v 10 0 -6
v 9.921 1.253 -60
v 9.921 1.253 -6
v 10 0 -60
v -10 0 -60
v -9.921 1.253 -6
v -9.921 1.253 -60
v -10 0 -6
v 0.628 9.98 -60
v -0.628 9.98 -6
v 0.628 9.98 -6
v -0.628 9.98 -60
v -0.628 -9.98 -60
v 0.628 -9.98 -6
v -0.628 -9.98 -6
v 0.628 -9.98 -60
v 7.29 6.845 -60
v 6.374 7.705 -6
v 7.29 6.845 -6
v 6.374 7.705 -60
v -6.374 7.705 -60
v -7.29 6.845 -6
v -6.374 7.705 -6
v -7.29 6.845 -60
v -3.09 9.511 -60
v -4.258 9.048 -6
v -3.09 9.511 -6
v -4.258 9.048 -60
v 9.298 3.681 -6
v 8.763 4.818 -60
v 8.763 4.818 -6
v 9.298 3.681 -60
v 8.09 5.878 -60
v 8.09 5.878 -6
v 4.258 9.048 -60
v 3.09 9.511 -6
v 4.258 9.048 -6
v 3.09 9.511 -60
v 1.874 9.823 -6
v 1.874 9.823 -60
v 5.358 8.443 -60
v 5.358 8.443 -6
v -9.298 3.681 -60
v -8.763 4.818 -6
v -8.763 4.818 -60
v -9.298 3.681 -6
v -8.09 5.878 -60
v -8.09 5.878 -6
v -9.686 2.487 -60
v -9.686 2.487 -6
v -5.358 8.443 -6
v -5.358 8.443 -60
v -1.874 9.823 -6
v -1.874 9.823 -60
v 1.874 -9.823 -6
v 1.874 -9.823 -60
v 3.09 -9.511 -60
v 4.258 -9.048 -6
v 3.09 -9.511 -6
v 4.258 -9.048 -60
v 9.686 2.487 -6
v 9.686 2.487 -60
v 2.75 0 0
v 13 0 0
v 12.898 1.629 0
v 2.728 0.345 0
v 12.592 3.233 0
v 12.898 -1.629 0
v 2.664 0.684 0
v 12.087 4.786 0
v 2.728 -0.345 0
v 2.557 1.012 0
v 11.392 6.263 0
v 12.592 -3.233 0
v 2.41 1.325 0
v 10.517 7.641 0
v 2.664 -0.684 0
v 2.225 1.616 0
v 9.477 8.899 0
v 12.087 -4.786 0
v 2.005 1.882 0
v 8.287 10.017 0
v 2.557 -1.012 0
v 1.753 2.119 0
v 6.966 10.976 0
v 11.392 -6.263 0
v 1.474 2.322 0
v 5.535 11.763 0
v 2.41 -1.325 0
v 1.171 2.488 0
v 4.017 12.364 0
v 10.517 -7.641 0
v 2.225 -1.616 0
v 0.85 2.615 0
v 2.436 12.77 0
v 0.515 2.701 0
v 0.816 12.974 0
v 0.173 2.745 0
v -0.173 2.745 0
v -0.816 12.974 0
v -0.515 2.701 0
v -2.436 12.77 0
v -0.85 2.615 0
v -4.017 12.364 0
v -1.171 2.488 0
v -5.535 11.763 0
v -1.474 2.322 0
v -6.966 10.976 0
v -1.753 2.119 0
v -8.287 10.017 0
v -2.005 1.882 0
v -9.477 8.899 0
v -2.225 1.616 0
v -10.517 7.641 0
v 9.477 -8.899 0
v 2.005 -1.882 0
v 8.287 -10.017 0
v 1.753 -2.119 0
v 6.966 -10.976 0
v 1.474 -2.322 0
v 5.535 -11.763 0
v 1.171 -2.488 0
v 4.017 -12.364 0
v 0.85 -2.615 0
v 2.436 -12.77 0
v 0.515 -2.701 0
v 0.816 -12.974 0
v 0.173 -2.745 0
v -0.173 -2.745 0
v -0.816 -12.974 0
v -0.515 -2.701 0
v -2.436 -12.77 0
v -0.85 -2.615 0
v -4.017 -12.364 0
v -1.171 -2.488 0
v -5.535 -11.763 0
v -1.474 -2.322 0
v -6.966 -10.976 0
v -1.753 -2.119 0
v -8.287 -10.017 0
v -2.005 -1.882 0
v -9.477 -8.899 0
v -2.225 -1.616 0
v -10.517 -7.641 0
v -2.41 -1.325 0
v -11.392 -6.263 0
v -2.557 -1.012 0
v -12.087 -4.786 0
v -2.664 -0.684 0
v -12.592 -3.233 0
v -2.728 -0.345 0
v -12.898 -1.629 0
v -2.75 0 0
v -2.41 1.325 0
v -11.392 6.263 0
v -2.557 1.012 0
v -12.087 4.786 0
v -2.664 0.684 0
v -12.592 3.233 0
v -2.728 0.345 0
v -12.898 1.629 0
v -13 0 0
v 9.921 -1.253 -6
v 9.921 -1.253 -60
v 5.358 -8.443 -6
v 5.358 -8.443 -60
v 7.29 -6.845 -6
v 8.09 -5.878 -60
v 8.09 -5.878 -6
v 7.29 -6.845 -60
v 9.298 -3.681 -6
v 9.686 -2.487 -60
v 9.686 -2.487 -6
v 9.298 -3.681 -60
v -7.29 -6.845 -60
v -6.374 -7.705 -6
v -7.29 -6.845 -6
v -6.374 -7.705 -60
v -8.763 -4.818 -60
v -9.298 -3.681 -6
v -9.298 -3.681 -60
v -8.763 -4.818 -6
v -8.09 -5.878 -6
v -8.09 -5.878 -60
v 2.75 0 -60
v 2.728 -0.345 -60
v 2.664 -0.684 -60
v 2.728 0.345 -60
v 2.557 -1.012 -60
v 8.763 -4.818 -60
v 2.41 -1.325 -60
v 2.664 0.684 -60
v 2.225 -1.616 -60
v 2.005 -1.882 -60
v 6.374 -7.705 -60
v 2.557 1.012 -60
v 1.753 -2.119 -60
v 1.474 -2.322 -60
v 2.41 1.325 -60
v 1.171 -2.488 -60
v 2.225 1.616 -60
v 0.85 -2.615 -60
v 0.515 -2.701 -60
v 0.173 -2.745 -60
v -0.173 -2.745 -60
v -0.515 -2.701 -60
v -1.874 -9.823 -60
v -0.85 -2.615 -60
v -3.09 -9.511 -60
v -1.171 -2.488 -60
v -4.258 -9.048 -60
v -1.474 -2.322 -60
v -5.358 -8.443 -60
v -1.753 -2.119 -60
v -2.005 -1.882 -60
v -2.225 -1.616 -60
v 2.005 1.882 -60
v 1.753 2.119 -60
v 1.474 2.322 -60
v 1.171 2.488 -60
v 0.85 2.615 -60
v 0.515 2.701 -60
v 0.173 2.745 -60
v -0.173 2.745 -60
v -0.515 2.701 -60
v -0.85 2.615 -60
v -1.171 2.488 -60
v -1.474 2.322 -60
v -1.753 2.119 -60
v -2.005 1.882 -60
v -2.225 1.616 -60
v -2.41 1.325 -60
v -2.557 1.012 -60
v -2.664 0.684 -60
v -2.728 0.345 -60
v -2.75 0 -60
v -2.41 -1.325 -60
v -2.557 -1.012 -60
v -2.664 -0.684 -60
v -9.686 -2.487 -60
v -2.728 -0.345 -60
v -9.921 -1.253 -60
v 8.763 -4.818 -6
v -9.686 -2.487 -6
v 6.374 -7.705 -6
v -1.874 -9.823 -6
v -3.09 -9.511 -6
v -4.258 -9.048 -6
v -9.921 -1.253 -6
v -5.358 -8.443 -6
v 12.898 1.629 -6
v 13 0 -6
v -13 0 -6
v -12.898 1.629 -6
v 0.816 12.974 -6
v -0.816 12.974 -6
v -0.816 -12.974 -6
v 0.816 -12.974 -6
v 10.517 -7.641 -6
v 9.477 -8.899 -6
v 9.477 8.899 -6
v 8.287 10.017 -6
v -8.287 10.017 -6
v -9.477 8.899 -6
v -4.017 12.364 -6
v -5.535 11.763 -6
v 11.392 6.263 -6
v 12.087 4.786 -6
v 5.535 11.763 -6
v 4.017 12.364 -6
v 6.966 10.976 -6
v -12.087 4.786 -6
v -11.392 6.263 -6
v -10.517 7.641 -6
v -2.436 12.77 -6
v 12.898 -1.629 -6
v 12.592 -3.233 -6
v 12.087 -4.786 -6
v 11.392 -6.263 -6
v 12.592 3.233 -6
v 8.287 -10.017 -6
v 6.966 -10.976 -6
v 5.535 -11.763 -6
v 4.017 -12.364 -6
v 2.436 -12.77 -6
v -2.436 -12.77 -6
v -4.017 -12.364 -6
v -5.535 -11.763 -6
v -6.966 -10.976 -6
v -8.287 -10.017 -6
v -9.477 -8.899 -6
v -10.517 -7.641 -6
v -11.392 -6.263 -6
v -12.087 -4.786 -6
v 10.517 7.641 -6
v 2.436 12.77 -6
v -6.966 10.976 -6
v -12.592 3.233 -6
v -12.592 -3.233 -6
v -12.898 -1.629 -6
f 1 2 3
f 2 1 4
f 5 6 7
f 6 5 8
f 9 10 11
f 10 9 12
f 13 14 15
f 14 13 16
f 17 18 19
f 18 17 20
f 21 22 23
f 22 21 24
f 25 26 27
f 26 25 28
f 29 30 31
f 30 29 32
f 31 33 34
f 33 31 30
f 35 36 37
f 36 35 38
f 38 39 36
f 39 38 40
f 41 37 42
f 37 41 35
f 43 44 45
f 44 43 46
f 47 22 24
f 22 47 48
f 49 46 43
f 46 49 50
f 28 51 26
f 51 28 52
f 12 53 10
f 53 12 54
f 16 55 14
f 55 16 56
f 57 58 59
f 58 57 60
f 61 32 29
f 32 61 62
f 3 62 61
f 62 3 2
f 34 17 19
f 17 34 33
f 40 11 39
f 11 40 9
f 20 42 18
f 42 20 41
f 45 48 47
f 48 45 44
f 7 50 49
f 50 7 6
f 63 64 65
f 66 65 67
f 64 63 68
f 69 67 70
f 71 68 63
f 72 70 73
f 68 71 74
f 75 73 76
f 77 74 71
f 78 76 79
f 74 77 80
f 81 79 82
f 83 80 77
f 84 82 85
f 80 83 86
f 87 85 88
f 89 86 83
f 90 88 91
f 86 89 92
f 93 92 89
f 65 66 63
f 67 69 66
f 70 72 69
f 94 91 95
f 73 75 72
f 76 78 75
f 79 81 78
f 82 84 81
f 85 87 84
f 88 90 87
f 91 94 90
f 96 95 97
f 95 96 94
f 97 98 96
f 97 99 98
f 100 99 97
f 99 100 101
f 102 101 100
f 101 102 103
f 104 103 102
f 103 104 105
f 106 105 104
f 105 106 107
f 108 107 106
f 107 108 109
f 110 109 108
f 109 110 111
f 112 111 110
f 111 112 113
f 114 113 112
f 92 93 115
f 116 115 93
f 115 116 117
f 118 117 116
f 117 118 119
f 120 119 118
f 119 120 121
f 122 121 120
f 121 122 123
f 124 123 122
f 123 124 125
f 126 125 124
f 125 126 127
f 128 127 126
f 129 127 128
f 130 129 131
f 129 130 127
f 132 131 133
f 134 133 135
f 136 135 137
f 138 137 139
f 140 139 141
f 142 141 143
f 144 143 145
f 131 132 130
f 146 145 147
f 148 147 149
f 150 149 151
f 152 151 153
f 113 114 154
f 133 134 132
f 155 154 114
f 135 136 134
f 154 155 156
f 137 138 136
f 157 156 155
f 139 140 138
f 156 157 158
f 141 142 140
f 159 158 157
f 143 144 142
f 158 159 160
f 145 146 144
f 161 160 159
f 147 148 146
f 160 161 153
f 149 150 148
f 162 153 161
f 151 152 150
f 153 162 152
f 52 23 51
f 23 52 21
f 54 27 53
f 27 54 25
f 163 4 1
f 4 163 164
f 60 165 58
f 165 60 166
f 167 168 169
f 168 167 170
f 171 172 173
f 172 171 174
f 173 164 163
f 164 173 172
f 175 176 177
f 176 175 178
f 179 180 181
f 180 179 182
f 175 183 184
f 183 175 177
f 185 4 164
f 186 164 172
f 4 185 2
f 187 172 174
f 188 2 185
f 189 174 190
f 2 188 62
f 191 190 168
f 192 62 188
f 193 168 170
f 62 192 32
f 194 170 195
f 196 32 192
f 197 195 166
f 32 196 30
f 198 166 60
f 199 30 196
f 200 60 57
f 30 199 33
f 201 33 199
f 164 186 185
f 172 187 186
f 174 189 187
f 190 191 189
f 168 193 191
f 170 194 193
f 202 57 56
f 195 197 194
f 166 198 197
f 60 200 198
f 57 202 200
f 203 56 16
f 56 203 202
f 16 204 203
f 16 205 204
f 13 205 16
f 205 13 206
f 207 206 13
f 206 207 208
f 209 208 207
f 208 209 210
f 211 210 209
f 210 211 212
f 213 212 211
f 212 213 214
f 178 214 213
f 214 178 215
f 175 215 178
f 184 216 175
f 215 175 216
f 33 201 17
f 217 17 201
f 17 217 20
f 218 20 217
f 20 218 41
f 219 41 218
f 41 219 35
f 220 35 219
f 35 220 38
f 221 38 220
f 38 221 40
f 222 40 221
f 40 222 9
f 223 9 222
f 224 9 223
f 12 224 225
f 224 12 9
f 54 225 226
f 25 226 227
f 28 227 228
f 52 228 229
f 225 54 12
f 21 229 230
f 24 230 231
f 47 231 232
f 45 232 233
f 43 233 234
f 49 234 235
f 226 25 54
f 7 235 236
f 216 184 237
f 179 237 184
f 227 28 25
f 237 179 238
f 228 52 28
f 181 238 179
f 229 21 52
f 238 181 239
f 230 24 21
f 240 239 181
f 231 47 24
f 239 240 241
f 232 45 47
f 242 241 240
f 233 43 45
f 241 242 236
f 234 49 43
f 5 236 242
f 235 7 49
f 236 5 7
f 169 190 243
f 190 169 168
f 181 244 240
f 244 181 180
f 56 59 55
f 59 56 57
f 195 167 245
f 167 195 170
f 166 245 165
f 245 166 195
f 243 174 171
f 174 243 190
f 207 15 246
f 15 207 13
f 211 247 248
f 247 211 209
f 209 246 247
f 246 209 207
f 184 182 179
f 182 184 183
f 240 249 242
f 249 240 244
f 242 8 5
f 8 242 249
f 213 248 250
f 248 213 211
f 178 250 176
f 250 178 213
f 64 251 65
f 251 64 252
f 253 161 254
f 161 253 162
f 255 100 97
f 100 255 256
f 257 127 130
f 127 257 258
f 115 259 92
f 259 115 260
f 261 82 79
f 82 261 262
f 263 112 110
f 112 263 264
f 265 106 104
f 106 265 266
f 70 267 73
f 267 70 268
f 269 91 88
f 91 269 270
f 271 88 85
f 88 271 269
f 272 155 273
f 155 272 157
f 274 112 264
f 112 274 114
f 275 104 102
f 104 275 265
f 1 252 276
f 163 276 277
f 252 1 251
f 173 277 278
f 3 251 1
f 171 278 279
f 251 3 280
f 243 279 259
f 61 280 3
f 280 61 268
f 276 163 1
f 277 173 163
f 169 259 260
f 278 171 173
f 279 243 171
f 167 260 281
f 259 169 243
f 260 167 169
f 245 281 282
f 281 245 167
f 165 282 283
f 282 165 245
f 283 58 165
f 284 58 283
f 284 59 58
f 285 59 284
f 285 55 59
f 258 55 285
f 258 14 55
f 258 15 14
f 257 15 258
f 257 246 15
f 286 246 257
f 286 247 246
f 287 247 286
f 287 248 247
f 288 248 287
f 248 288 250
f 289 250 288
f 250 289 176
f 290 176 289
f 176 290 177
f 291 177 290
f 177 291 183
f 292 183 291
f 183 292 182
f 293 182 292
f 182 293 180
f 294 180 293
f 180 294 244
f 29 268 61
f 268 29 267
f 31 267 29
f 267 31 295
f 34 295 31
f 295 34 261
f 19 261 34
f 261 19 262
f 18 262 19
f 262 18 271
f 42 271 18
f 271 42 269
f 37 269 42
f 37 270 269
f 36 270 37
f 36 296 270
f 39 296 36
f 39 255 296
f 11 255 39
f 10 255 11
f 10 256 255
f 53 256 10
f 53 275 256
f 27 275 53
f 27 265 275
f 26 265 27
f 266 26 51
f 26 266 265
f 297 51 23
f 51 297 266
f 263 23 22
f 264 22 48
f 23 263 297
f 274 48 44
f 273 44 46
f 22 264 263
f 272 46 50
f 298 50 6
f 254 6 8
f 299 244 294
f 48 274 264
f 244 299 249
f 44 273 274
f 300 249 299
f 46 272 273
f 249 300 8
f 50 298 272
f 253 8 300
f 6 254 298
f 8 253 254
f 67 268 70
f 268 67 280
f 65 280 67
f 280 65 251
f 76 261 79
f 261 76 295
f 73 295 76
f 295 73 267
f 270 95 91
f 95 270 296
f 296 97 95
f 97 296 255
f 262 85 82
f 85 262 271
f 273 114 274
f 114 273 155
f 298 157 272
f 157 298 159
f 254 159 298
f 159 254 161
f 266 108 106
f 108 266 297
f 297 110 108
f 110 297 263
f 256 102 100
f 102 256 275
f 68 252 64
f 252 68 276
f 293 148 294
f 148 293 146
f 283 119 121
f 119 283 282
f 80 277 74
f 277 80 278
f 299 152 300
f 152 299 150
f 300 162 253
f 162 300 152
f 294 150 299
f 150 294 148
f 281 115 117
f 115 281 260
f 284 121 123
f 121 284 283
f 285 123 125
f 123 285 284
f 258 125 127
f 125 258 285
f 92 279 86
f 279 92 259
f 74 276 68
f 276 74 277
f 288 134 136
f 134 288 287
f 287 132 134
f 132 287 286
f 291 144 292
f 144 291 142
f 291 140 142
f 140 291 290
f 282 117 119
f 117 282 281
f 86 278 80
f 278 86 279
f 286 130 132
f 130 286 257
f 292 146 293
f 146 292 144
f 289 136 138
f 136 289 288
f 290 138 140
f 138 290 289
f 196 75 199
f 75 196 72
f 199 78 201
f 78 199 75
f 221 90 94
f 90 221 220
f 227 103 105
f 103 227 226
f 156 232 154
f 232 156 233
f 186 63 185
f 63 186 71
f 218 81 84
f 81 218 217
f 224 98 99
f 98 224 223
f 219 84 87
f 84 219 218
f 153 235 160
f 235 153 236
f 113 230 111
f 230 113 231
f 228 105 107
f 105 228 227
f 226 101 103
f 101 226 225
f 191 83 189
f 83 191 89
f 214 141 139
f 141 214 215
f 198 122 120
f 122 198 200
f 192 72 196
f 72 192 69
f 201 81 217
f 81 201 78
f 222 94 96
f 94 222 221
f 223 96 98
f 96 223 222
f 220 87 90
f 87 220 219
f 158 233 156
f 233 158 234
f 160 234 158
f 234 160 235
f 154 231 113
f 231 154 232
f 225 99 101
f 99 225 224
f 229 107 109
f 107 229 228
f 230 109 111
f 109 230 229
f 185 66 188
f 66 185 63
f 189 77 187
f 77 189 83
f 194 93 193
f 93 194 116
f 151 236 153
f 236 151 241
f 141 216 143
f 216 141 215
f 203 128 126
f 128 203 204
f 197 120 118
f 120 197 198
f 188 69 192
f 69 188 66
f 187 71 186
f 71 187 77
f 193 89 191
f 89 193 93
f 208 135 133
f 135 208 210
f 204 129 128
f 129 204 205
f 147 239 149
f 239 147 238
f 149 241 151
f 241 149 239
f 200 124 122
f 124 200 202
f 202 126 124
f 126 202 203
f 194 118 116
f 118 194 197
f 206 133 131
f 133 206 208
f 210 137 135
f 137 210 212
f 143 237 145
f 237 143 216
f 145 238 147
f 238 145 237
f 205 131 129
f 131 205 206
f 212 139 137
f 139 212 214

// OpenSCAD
$fn = 50;


difference() {
	union() {
		translate(v = [0, 0, -60.0000000000]) {
			cylinder(h = 60, r = 10.0000000000);
		}
		translate(v = [0, 0, -6.0000000000]) {
			cylinder(h = 6, r = 13.0000000000);
		}
	}
	union() {
		#translate(v = [0, 0, -60]) {
			cylinder(h = 60, r = 2.7500000000);
		}
	}
}
